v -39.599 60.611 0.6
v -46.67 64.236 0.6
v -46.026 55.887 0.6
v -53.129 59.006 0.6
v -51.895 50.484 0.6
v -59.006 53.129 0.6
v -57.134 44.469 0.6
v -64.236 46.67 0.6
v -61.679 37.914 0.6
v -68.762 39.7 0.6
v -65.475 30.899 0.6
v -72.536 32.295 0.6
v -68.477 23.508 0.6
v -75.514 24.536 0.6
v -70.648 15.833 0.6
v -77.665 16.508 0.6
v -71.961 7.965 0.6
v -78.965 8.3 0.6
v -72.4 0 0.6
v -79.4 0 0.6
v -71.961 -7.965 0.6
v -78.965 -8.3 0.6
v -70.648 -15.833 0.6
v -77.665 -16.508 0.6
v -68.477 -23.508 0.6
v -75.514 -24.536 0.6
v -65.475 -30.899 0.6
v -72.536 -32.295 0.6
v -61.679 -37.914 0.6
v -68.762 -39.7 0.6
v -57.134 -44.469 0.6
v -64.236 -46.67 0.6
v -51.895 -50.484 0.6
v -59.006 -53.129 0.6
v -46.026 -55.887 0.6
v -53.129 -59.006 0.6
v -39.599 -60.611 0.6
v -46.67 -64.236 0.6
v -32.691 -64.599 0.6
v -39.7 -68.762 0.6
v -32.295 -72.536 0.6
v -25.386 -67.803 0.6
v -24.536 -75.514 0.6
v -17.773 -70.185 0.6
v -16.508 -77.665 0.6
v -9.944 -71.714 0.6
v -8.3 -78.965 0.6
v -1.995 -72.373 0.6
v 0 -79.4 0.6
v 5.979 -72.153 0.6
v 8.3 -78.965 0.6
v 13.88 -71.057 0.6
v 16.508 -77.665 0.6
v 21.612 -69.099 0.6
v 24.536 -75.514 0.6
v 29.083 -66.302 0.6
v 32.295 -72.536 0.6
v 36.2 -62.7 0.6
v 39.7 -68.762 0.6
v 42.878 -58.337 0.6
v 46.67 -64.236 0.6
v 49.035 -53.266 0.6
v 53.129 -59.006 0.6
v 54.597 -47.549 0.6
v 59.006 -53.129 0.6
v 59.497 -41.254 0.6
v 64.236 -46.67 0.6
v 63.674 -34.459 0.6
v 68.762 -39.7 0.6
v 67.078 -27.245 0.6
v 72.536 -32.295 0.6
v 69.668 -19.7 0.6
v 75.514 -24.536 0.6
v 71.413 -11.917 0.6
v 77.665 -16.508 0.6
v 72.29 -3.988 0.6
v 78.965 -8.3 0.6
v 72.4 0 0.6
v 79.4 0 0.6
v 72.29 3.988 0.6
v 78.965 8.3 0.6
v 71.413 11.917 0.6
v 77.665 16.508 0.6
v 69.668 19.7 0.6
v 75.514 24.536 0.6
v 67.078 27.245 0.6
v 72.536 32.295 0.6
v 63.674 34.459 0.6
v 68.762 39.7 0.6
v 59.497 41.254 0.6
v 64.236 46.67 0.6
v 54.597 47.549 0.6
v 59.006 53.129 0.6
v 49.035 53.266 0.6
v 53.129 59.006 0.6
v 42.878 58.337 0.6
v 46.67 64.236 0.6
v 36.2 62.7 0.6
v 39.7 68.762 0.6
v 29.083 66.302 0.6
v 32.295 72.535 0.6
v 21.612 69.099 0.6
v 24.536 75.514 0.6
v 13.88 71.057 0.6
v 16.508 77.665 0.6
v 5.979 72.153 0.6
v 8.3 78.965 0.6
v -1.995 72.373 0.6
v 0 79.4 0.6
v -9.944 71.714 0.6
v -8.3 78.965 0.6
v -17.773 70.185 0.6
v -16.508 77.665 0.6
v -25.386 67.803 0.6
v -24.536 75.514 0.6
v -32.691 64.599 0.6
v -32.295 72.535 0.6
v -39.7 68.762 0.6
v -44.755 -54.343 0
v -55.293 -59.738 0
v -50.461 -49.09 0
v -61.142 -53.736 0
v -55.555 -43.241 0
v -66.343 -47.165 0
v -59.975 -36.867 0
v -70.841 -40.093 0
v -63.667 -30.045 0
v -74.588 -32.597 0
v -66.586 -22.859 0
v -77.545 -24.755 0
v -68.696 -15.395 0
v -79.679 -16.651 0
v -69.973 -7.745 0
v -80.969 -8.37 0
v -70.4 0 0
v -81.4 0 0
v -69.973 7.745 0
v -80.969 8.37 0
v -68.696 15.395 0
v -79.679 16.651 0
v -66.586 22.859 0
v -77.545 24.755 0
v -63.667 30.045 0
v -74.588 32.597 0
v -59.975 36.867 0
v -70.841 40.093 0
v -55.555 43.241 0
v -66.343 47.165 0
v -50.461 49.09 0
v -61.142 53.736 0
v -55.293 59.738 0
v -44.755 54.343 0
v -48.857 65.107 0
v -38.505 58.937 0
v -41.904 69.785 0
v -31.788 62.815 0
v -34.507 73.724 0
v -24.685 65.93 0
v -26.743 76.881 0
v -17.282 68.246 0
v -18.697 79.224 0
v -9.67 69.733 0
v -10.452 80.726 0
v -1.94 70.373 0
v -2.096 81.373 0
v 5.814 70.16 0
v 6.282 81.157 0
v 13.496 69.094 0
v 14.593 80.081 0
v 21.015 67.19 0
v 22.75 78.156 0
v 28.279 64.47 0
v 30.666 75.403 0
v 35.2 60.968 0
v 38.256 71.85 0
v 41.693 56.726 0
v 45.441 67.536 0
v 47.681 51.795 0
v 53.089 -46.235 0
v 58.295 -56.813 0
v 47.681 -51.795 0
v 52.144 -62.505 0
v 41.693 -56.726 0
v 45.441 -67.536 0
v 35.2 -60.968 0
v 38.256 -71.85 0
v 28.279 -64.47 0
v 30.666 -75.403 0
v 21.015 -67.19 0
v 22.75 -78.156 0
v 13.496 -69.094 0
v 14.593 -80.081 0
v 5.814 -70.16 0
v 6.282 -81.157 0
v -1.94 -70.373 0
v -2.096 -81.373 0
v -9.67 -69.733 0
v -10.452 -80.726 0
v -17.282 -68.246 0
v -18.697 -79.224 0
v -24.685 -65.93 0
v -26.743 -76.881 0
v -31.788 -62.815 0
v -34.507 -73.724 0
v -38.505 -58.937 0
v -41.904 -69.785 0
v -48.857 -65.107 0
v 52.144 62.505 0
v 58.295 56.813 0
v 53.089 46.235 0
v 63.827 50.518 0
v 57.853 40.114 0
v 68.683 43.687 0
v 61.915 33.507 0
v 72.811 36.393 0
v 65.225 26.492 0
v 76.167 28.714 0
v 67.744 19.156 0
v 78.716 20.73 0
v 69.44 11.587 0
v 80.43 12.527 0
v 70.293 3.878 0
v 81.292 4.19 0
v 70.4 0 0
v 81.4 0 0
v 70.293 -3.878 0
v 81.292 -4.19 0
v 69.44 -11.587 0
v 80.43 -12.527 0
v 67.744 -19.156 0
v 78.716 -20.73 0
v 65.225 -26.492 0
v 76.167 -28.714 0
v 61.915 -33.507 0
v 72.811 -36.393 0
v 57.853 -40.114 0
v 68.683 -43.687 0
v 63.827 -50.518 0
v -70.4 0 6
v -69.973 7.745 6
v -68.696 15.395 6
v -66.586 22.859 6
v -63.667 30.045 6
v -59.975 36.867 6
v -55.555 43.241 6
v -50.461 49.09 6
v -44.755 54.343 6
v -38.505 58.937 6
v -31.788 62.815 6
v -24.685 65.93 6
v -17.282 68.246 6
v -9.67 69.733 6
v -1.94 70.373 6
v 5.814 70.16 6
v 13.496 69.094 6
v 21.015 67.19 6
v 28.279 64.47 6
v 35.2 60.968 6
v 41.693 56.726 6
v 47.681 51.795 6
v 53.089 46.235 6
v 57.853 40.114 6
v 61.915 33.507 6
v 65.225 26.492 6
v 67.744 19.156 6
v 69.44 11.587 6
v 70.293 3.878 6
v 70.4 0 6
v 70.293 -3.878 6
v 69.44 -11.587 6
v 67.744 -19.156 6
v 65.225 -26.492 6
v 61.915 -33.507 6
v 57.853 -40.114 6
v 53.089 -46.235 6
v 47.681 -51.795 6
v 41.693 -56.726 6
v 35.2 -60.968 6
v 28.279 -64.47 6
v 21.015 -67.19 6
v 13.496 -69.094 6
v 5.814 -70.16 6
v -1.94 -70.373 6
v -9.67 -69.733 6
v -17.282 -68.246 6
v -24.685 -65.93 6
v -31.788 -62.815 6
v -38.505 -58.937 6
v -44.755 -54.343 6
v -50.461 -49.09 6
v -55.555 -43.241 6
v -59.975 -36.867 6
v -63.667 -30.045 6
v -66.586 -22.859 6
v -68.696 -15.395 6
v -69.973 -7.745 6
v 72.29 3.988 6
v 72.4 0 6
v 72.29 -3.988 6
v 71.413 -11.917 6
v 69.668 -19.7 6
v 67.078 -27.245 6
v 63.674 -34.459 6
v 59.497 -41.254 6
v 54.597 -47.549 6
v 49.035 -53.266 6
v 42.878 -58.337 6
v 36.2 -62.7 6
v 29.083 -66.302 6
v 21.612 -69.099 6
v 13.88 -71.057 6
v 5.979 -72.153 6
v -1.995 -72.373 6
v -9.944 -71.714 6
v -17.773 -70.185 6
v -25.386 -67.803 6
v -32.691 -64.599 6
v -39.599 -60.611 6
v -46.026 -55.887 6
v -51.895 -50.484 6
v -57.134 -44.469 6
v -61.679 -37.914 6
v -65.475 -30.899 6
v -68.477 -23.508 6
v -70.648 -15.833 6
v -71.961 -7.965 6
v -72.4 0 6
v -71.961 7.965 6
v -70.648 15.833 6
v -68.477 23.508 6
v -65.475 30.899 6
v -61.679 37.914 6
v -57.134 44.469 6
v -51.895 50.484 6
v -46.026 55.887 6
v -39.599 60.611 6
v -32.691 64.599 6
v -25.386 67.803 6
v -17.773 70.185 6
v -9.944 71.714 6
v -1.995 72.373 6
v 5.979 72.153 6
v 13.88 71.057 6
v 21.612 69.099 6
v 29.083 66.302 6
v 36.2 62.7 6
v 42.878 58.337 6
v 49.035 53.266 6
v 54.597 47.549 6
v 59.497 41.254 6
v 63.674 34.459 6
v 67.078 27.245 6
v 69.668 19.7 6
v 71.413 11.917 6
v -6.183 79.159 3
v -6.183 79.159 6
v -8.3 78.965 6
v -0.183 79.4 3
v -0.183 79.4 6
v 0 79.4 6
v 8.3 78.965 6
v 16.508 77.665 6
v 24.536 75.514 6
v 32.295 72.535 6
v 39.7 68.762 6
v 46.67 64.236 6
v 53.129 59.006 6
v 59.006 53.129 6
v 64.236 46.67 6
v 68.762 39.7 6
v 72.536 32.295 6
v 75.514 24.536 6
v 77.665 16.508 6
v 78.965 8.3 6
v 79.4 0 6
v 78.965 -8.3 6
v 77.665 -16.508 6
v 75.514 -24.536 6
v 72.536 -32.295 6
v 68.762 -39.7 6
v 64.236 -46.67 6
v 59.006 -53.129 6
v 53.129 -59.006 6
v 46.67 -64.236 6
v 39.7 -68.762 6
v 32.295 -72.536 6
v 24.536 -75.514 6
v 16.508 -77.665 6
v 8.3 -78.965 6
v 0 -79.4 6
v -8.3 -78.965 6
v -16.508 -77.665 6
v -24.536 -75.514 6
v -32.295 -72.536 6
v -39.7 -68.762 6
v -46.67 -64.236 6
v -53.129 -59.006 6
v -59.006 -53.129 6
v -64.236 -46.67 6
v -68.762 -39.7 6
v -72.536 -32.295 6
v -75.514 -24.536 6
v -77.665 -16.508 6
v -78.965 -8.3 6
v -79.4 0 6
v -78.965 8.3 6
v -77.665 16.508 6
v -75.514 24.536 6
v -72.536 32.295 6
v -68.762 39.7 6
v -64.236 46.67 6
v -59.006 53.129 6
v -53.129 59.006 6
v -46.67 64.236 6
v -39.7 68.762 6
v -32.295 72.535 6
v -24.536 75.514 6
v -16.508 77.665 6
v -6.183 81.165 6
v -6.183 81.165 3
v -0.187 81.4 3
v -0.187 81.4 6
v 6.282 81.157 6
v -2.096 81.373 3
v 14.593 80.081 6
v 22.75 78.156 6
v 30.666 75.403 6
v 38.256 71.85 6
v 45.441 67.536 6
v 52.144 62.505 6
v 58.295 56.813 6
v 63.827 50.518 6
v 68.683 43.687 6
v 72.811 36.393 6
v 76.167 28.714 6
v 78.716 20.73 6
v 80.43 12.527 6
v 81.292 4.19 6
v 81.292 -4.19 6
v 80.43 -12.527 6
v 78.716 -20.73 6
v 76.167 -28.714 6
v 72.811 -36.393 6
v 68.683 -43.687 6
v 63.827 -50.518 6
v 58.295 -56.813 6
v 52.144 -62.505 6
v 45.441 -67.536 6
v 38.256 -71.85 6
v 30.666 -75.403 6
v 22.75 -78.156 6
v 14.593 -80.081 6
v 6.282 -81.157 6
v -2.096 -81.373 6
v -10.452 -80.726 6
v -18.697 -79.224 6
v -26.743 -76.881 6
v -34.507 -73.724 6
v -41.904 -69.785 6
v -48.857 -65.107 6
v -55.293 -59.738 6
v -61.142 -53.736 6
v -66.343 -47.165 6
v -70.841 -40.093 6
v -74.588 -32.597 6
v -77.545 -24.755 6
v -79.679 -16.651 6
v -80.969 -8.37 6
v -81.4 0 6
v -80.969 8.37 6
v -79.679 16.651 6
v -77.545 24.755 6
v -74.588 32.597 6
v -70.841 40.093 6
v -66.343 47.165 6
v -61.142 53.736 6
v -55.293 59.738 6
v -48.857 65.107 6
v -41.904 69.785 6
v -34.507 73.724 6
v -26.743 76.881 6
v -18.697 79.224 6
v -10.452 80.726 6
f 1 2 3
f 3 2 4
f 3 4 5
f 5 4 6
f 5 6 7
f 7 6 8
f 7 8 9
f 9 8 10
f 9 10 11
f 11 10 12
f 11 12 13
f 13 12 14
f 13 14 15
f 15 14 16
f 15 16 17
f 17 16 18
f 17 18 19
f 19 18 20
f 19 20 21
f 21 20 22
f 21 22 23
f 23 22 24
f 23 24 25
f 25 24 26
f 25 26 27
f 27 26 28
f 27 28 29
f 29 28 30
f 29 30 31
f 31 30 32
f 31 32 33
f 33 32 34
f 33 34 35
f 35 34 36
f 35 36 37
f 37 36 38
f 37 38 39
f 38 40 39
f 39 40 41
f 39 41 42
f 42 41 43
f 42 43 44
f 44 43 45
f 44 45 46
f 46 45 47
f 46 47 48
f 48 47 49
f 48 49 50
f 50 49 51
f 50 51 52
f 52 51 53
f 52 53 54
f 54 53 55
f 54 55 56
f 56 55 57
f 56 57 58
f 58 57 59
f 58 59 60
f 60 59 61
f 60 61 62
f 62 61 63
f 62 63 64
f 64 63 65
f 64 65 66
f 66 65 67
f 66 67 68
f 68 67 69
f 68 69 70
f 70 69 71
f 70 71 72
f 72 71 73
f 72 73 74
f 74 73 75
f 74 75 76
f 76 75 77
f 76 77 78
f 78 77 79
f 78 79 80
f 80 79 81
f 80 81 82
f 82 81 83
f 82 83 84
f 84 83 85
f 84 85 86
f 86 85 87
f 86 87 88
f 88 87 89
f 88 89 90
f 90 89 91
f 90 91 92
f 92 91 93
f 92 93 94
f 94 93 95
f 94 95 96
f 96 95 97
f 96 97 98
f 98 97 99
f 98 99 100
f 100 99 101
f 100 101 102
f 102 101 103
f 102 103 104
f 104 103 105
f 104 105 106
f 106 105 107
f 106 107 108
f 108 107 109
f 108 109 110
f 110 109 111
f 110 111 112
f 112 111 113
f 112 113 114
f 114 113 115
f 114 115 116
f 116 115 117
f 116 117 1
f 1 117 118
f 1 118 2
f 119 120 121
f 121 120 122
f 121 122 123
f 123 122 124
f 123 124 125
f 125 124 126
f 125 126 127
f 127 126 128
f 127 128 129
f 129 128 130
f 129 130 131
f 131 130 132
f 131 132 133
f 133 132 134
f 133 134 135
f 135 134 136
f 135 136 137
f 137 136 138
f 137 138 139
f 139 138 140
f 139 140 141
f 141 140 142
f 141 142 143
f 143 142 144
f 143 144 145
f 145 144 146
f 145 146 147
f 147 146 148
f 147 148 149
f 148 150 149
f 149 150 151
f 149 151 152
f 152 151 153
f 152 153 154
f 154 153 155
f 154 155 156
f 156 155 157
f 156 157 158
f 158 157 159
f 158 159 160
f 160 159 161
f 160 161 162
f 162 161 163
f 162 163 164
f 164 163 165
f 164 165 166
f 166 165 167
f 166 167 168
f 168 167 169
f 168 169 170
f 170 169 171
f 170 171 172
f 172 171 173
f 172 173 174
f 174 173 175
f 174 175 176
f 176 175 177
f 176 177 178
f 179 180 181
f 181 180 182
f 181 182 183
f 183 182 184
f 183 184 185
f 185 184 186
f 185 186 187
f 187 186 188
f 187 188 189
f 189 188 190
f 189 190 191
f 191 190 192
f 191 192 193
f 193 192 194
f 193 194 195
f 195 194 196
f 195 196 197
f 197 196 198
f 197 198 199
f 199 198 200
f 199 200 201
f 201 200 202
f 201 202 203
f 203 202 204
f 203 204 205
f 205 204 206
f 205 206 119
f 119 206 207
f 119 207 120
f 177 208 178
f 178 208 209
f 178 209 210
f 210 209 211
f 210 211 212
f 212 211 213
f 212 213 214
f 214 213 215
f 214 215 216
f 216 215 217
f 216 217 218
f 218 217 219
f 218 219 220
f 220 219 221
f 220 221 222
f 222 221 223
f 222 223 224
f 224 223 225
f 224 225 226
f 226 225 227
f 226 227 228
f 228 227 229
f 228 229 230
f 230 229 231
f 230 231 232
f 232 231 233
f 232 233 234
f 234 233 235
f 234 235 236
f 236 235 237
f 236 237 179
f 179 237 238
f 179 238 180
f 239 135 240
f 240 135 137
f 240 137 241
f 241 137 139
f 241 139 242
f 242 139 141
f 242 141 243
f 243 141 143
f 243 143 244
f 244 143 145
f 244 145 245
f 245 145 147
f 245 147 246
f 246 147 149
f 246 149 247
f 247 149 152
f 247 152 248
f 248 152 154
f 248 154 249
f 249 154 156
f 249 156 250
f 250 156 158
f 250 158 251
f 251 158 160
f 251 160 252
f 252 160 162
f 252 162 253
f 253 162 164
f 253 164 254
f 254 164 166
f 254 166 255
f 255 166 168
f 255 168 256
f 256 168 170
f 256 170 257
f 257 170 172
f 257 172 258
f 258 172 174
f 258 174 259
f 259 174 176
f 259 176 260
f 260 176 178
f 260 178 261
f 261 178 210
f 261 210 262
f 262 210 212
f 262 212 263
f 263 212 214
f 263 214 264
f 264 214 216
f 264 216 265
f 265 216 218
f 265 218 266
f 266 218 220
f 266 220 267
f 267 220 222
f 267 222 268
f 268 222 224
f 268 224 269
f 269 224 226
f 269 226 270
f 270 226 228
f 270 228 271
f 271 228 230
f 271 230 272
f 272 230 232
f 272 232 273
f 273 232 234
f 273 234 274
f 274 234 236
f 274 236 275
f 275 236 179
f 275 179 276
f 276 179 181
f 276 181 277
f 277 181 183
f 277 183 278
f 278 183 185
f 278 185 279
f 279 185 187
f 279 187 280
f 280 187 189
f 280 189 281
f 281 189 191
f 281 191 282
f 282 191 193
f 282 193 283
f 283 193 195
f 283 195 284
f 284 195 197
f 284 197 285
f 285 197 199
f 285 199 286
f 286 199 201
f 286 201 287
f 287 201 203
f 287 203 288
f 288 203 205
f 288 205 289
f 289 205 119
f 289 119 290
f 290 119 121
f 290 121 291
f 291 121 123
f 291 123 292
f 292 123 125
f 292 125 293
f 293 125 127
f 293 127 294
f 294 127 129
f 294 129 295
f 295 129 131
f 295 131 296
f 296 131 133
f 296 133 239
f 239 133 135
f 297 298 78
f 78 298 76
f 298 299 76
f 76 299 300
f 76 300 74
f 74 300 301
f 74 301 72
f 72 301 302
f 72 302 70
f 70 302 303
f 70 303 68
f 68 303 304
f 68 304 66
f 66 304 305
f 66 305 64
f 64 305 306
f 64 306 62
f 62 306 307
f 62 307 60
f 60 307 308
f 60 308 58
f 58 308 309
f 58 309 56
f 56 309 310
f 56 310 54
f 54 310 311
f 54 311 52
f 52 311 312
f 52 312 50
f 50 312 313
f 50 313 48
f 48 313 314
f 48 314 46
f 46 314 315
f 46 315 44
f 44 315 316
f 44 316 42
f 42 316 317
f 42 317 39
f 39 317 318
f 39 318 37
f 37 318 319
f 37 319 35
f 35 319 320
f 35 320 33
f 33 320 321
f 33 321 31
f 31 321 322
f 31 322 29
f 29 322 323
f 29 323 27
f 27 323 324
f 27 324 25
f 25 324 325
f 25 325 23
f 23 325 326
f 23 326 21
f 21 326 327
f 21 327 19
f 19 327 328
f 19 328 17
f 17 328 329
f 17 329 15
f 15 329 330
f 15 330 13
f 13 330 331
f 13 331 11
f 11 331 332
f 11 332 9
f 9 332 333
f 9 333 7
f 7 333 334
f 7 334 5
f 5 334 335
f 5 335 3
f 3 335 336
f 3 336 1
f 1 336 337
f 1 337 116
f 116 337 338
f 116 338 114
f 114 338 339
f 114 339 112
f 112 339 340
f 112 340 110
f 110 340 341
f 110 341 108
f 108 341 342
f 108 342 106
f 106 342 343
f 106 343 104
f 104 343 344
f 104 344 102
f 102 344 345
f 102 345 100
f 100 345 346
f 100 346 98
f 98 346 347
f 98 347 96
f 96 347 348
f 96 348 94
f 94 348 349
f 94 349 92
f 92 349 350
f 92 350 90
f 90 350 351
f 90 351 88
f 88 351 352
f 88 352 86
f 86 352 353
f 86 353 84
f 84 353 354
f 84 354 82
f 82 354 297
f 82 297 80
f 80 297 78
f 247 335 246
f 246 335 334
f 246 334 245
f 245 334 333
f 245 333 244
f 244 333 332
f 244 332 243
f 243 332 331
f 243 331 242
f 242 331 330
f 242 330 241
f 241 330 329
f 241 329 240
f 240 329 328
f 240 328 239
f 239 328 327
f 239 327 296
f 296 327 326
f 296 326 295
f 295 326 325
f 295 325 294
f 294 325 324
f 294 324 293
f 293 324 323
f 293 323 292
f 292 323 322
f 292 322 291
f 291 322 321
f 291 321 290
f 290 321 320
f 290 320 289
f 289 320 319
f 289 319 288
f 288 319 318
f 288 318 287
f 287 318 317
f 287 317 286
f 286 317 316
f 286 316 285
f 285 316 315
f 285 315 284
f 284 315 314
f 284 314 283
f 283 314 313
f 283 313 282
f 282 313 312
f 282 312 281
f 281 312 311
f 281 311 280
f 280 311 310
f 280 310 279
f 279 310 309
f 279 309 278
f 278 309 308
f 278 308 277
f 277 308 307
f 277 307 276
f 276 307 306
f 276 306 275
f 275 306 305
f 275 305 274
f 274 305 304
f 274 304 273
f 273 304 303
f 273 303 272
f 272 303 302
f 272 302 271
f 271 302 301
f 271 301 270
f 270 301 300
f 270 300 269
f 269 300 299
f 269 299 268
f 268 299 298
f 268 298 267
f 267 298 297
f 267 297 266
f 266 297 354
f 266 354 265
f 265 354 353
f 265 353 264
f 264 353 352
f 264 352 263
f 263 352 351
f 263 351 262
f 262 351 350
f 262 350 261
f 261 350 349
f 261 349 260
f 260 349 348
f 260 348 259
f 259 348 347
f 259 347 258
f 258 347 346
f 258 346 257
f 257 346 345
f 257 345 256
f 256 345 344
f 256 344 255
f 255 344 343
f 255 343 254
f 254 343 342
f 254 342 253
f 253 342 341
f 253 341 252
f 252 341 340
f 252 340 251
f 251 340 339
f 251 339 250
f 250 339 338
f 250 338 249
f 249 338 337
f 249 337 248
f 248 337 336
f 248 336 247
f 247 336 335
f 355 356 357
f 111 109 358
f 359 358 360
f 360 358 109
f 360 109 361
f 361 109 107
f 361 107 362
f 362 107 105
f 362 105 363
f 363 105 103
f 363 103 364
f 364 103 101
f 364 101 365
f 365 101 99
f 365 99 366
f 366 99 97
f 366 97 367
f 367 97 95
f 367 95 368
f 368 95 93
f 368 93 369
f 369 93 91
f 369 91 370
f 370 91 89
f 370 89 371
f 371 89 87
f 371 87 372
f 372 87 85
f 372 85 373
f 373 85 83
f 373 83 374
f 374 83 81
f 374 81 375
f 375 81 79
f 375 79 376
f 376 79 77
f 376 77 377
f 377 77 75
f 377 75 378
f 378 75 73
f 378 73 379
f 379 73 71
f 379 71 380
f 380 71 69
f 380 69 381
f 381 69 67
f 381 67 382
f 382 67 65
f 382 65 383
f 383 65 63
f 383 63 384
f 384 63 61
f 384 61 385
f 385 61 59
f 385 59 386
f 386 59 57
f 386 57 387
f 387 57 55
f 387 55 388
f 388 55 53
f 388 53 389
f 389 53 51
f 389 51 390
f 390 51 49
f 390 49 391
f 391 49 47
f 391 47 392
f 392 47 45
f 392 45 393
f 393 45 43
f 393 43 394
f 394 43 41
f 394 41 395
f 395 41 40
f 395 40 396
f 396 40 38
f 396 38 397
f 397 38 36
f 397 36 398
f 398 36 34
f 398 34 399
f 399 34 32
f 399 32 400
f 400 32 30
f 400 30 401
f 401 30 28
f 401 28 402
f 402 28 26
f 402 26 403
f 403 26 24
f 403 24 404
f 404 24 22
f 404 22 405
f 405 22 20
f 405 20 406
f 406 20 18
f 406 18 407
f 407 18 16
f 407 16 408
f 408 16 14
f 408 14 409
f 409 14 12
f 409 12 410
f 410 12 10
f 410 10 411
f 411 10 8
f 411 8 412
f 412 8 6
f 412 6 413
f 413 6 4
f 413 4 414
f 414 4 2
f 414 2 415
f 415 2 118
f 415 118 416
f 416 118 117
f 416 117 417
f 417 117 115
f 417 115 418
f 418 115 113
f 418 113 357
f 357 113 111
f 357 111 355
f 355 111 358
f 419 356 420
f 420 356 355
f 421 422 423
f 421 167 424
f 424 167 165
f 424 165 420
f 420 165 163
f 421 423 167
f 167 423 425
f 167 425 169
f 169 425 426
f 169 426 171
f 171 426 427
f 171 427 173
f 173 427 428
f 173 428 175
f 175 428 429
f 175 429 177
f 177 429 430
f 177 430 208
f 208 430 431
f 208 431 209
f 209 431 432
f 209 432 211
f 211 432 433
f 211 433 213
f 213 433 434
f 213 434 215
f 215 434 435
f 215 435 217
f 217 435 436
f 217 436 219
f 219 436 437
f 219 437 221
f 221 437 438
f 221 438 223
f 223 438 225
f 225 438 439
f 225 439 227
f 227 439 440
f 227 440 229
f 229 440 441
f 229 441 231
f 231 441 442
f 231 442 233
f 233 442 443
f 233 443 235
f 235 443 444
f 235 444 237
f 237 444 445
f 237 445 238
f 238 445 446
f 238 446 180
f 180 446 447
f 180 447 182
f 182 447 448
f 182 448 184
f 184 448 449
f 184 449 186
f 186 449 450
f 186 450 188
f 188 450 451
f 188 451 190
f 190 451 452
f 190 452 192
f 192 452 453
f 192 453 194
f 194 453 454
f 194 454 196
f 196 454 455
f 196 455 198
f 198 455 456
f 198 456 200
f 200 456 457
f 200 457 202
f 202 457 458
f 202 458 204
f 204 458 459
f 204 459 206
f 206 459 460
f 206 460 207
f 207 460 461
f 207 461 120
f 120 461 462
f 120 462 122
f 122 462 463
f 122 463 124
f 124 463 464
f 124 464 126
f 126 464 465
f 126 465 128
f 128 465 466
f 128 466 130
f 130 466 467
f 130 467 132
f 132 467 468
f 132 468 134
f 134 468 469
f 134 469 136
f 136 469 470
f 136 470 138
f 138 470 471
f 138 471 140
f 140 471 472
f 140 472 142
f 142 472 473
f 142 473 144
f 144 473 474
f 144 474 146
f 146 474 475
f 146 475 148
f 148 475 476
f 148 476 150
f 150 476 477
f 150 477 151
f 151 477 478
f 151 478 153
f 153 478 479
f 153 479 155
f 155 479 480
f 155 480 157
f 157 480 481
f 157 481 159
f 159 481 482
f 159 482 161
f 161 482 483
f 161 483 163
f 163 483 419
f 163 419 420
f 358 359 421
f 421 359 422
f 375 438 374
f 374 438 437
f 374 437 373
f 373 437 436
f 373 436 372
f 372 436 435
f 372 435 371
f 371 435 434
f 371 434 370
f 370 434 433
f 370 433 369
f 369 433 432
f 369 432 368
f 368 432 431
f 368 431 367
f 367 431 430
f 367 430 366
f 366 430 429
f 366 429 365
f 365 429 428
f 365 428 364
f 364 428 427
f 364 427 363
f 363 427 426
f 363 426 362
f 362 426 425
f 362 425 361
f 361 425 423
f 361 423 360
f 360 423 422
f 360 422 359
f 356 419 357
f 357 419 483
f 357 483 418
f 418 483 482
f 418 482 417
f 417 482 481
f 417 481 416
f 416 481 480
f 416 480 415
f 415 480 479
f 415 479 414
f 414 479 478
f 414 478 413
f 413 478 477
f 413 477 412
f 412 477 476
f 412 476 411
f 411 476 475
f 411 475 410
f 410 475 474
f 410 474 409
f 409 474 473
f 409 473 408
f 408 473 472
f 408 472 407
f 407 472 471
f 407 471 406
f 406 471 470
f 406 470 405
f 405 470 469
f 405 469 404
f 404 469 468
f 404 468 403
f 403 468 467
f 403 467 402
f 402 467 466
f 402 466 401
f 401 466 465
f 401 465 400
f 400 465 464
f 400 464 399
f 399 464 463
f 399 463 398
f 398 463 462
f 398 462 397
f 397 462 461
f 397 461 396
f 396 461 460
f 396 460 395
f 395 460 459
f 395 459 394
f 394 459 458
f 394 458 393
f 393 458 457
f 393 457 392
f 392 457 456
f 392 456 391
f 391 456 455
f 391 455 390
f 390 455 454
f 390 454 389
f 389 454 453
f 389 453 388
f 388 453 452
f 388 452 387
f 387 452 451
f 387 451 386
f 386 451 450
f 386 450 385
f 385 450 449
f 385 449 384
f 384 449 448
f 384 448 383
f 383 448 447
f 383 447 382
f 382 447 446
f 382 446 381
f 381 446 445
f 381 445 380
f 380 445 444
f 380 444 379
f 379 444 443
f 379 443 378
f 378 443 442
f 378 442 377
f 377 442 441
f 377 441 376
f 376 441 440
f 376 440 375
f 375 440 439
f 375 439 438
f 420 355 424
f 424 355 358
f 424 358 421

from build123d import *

# Parameters (mm, degrees)
SKETCH1_R           = 72.4
BOSS_EXTRUDE1_DEPTH = 0.6
SKETCH1_3_R         = 72.4
SKETCH1_3_R_2       = 70.4
BOSS_EXTRUDE2_DEPTH = 6
BOSS_EXTRUDE3_DEPTH = 3


with BuildPart() as part:
    # Sketch1 → Boss-Extrude1 (new body)
    with BuildSketch(Plane.XY):
        with BuildLine():
            ThreePointArc((-0.182652597, 79.399789912), (-3.184930452, 79.336096564), (-6.182652597, 79.158921208))
            ThreePointArc((-6.182652597, 79.158921208), (-53.91408621, -58.289204044), (79.4, 0))
            ThreePointArc((79.4, 0), (56.0796638, 56.208818775), (-0.182652597, 79.399789912))
        make_face()
        Circle(SKETCH1_R, mode=Mode.SUBTRACT)
    extrude(amount=BOSS_EXTRUDE1_DEPTH)

    # Sketch1<3> → Boss-Extrude2 (add)
    # profile 1 of 2: a face of its own
    with BuildSketch(Plane.XY):
        with BuildLine():
            Line((-6.182652597, 79.158921208), (-6.182652597, 81.164861898))
            ThreePointArc((-6.182652597, 81.164861898), (3.187118264, -81.337582194), (-0.187253418, 81.39978462))
            Line((-0.187253418, 81.39978462), (-0.182652597, 79.399789912))
            ThreePointArc((-0.182652597, 79.399789912), (3.184930452, -79.336096564), (-6.182652597, 79.158921208))
        make_face()
    # profile 2 of 2: a face of its own
    with BuildSketch(Plane.XY):
        Circle(SKETCH1_3_R)
        Circle(SKETCH1_3_R_2, mode=Mode.SUBTRACT)
    extrude(amount=BOSS_EXTRUDE2_DEPTH)

    # Sketch1<4> → Boss-Extrude3 (add)
    with BuildSketch(Plane.XY):
        with BuildLine():
            ThreePointArc((-0.187253418, 81.39978462), (-3.187118264, 81.337582194), (-6.182652597, 81.164861898))
            Line((-6.182652597, 81.164861898), (-6.182652597, 79.158921208))
            ThreePointArc((-6.182652597, 79.158921208), (-3.184930452, 79.336096564), (-0.182652597, 79.399789912))
            Line((-0.182652597, 79.399789912), (-0.187253418, 81.39978462))
        make_face()
    extrude(amount=BOSS_EXTRUDE3_DEPTH)


solid = part.part
